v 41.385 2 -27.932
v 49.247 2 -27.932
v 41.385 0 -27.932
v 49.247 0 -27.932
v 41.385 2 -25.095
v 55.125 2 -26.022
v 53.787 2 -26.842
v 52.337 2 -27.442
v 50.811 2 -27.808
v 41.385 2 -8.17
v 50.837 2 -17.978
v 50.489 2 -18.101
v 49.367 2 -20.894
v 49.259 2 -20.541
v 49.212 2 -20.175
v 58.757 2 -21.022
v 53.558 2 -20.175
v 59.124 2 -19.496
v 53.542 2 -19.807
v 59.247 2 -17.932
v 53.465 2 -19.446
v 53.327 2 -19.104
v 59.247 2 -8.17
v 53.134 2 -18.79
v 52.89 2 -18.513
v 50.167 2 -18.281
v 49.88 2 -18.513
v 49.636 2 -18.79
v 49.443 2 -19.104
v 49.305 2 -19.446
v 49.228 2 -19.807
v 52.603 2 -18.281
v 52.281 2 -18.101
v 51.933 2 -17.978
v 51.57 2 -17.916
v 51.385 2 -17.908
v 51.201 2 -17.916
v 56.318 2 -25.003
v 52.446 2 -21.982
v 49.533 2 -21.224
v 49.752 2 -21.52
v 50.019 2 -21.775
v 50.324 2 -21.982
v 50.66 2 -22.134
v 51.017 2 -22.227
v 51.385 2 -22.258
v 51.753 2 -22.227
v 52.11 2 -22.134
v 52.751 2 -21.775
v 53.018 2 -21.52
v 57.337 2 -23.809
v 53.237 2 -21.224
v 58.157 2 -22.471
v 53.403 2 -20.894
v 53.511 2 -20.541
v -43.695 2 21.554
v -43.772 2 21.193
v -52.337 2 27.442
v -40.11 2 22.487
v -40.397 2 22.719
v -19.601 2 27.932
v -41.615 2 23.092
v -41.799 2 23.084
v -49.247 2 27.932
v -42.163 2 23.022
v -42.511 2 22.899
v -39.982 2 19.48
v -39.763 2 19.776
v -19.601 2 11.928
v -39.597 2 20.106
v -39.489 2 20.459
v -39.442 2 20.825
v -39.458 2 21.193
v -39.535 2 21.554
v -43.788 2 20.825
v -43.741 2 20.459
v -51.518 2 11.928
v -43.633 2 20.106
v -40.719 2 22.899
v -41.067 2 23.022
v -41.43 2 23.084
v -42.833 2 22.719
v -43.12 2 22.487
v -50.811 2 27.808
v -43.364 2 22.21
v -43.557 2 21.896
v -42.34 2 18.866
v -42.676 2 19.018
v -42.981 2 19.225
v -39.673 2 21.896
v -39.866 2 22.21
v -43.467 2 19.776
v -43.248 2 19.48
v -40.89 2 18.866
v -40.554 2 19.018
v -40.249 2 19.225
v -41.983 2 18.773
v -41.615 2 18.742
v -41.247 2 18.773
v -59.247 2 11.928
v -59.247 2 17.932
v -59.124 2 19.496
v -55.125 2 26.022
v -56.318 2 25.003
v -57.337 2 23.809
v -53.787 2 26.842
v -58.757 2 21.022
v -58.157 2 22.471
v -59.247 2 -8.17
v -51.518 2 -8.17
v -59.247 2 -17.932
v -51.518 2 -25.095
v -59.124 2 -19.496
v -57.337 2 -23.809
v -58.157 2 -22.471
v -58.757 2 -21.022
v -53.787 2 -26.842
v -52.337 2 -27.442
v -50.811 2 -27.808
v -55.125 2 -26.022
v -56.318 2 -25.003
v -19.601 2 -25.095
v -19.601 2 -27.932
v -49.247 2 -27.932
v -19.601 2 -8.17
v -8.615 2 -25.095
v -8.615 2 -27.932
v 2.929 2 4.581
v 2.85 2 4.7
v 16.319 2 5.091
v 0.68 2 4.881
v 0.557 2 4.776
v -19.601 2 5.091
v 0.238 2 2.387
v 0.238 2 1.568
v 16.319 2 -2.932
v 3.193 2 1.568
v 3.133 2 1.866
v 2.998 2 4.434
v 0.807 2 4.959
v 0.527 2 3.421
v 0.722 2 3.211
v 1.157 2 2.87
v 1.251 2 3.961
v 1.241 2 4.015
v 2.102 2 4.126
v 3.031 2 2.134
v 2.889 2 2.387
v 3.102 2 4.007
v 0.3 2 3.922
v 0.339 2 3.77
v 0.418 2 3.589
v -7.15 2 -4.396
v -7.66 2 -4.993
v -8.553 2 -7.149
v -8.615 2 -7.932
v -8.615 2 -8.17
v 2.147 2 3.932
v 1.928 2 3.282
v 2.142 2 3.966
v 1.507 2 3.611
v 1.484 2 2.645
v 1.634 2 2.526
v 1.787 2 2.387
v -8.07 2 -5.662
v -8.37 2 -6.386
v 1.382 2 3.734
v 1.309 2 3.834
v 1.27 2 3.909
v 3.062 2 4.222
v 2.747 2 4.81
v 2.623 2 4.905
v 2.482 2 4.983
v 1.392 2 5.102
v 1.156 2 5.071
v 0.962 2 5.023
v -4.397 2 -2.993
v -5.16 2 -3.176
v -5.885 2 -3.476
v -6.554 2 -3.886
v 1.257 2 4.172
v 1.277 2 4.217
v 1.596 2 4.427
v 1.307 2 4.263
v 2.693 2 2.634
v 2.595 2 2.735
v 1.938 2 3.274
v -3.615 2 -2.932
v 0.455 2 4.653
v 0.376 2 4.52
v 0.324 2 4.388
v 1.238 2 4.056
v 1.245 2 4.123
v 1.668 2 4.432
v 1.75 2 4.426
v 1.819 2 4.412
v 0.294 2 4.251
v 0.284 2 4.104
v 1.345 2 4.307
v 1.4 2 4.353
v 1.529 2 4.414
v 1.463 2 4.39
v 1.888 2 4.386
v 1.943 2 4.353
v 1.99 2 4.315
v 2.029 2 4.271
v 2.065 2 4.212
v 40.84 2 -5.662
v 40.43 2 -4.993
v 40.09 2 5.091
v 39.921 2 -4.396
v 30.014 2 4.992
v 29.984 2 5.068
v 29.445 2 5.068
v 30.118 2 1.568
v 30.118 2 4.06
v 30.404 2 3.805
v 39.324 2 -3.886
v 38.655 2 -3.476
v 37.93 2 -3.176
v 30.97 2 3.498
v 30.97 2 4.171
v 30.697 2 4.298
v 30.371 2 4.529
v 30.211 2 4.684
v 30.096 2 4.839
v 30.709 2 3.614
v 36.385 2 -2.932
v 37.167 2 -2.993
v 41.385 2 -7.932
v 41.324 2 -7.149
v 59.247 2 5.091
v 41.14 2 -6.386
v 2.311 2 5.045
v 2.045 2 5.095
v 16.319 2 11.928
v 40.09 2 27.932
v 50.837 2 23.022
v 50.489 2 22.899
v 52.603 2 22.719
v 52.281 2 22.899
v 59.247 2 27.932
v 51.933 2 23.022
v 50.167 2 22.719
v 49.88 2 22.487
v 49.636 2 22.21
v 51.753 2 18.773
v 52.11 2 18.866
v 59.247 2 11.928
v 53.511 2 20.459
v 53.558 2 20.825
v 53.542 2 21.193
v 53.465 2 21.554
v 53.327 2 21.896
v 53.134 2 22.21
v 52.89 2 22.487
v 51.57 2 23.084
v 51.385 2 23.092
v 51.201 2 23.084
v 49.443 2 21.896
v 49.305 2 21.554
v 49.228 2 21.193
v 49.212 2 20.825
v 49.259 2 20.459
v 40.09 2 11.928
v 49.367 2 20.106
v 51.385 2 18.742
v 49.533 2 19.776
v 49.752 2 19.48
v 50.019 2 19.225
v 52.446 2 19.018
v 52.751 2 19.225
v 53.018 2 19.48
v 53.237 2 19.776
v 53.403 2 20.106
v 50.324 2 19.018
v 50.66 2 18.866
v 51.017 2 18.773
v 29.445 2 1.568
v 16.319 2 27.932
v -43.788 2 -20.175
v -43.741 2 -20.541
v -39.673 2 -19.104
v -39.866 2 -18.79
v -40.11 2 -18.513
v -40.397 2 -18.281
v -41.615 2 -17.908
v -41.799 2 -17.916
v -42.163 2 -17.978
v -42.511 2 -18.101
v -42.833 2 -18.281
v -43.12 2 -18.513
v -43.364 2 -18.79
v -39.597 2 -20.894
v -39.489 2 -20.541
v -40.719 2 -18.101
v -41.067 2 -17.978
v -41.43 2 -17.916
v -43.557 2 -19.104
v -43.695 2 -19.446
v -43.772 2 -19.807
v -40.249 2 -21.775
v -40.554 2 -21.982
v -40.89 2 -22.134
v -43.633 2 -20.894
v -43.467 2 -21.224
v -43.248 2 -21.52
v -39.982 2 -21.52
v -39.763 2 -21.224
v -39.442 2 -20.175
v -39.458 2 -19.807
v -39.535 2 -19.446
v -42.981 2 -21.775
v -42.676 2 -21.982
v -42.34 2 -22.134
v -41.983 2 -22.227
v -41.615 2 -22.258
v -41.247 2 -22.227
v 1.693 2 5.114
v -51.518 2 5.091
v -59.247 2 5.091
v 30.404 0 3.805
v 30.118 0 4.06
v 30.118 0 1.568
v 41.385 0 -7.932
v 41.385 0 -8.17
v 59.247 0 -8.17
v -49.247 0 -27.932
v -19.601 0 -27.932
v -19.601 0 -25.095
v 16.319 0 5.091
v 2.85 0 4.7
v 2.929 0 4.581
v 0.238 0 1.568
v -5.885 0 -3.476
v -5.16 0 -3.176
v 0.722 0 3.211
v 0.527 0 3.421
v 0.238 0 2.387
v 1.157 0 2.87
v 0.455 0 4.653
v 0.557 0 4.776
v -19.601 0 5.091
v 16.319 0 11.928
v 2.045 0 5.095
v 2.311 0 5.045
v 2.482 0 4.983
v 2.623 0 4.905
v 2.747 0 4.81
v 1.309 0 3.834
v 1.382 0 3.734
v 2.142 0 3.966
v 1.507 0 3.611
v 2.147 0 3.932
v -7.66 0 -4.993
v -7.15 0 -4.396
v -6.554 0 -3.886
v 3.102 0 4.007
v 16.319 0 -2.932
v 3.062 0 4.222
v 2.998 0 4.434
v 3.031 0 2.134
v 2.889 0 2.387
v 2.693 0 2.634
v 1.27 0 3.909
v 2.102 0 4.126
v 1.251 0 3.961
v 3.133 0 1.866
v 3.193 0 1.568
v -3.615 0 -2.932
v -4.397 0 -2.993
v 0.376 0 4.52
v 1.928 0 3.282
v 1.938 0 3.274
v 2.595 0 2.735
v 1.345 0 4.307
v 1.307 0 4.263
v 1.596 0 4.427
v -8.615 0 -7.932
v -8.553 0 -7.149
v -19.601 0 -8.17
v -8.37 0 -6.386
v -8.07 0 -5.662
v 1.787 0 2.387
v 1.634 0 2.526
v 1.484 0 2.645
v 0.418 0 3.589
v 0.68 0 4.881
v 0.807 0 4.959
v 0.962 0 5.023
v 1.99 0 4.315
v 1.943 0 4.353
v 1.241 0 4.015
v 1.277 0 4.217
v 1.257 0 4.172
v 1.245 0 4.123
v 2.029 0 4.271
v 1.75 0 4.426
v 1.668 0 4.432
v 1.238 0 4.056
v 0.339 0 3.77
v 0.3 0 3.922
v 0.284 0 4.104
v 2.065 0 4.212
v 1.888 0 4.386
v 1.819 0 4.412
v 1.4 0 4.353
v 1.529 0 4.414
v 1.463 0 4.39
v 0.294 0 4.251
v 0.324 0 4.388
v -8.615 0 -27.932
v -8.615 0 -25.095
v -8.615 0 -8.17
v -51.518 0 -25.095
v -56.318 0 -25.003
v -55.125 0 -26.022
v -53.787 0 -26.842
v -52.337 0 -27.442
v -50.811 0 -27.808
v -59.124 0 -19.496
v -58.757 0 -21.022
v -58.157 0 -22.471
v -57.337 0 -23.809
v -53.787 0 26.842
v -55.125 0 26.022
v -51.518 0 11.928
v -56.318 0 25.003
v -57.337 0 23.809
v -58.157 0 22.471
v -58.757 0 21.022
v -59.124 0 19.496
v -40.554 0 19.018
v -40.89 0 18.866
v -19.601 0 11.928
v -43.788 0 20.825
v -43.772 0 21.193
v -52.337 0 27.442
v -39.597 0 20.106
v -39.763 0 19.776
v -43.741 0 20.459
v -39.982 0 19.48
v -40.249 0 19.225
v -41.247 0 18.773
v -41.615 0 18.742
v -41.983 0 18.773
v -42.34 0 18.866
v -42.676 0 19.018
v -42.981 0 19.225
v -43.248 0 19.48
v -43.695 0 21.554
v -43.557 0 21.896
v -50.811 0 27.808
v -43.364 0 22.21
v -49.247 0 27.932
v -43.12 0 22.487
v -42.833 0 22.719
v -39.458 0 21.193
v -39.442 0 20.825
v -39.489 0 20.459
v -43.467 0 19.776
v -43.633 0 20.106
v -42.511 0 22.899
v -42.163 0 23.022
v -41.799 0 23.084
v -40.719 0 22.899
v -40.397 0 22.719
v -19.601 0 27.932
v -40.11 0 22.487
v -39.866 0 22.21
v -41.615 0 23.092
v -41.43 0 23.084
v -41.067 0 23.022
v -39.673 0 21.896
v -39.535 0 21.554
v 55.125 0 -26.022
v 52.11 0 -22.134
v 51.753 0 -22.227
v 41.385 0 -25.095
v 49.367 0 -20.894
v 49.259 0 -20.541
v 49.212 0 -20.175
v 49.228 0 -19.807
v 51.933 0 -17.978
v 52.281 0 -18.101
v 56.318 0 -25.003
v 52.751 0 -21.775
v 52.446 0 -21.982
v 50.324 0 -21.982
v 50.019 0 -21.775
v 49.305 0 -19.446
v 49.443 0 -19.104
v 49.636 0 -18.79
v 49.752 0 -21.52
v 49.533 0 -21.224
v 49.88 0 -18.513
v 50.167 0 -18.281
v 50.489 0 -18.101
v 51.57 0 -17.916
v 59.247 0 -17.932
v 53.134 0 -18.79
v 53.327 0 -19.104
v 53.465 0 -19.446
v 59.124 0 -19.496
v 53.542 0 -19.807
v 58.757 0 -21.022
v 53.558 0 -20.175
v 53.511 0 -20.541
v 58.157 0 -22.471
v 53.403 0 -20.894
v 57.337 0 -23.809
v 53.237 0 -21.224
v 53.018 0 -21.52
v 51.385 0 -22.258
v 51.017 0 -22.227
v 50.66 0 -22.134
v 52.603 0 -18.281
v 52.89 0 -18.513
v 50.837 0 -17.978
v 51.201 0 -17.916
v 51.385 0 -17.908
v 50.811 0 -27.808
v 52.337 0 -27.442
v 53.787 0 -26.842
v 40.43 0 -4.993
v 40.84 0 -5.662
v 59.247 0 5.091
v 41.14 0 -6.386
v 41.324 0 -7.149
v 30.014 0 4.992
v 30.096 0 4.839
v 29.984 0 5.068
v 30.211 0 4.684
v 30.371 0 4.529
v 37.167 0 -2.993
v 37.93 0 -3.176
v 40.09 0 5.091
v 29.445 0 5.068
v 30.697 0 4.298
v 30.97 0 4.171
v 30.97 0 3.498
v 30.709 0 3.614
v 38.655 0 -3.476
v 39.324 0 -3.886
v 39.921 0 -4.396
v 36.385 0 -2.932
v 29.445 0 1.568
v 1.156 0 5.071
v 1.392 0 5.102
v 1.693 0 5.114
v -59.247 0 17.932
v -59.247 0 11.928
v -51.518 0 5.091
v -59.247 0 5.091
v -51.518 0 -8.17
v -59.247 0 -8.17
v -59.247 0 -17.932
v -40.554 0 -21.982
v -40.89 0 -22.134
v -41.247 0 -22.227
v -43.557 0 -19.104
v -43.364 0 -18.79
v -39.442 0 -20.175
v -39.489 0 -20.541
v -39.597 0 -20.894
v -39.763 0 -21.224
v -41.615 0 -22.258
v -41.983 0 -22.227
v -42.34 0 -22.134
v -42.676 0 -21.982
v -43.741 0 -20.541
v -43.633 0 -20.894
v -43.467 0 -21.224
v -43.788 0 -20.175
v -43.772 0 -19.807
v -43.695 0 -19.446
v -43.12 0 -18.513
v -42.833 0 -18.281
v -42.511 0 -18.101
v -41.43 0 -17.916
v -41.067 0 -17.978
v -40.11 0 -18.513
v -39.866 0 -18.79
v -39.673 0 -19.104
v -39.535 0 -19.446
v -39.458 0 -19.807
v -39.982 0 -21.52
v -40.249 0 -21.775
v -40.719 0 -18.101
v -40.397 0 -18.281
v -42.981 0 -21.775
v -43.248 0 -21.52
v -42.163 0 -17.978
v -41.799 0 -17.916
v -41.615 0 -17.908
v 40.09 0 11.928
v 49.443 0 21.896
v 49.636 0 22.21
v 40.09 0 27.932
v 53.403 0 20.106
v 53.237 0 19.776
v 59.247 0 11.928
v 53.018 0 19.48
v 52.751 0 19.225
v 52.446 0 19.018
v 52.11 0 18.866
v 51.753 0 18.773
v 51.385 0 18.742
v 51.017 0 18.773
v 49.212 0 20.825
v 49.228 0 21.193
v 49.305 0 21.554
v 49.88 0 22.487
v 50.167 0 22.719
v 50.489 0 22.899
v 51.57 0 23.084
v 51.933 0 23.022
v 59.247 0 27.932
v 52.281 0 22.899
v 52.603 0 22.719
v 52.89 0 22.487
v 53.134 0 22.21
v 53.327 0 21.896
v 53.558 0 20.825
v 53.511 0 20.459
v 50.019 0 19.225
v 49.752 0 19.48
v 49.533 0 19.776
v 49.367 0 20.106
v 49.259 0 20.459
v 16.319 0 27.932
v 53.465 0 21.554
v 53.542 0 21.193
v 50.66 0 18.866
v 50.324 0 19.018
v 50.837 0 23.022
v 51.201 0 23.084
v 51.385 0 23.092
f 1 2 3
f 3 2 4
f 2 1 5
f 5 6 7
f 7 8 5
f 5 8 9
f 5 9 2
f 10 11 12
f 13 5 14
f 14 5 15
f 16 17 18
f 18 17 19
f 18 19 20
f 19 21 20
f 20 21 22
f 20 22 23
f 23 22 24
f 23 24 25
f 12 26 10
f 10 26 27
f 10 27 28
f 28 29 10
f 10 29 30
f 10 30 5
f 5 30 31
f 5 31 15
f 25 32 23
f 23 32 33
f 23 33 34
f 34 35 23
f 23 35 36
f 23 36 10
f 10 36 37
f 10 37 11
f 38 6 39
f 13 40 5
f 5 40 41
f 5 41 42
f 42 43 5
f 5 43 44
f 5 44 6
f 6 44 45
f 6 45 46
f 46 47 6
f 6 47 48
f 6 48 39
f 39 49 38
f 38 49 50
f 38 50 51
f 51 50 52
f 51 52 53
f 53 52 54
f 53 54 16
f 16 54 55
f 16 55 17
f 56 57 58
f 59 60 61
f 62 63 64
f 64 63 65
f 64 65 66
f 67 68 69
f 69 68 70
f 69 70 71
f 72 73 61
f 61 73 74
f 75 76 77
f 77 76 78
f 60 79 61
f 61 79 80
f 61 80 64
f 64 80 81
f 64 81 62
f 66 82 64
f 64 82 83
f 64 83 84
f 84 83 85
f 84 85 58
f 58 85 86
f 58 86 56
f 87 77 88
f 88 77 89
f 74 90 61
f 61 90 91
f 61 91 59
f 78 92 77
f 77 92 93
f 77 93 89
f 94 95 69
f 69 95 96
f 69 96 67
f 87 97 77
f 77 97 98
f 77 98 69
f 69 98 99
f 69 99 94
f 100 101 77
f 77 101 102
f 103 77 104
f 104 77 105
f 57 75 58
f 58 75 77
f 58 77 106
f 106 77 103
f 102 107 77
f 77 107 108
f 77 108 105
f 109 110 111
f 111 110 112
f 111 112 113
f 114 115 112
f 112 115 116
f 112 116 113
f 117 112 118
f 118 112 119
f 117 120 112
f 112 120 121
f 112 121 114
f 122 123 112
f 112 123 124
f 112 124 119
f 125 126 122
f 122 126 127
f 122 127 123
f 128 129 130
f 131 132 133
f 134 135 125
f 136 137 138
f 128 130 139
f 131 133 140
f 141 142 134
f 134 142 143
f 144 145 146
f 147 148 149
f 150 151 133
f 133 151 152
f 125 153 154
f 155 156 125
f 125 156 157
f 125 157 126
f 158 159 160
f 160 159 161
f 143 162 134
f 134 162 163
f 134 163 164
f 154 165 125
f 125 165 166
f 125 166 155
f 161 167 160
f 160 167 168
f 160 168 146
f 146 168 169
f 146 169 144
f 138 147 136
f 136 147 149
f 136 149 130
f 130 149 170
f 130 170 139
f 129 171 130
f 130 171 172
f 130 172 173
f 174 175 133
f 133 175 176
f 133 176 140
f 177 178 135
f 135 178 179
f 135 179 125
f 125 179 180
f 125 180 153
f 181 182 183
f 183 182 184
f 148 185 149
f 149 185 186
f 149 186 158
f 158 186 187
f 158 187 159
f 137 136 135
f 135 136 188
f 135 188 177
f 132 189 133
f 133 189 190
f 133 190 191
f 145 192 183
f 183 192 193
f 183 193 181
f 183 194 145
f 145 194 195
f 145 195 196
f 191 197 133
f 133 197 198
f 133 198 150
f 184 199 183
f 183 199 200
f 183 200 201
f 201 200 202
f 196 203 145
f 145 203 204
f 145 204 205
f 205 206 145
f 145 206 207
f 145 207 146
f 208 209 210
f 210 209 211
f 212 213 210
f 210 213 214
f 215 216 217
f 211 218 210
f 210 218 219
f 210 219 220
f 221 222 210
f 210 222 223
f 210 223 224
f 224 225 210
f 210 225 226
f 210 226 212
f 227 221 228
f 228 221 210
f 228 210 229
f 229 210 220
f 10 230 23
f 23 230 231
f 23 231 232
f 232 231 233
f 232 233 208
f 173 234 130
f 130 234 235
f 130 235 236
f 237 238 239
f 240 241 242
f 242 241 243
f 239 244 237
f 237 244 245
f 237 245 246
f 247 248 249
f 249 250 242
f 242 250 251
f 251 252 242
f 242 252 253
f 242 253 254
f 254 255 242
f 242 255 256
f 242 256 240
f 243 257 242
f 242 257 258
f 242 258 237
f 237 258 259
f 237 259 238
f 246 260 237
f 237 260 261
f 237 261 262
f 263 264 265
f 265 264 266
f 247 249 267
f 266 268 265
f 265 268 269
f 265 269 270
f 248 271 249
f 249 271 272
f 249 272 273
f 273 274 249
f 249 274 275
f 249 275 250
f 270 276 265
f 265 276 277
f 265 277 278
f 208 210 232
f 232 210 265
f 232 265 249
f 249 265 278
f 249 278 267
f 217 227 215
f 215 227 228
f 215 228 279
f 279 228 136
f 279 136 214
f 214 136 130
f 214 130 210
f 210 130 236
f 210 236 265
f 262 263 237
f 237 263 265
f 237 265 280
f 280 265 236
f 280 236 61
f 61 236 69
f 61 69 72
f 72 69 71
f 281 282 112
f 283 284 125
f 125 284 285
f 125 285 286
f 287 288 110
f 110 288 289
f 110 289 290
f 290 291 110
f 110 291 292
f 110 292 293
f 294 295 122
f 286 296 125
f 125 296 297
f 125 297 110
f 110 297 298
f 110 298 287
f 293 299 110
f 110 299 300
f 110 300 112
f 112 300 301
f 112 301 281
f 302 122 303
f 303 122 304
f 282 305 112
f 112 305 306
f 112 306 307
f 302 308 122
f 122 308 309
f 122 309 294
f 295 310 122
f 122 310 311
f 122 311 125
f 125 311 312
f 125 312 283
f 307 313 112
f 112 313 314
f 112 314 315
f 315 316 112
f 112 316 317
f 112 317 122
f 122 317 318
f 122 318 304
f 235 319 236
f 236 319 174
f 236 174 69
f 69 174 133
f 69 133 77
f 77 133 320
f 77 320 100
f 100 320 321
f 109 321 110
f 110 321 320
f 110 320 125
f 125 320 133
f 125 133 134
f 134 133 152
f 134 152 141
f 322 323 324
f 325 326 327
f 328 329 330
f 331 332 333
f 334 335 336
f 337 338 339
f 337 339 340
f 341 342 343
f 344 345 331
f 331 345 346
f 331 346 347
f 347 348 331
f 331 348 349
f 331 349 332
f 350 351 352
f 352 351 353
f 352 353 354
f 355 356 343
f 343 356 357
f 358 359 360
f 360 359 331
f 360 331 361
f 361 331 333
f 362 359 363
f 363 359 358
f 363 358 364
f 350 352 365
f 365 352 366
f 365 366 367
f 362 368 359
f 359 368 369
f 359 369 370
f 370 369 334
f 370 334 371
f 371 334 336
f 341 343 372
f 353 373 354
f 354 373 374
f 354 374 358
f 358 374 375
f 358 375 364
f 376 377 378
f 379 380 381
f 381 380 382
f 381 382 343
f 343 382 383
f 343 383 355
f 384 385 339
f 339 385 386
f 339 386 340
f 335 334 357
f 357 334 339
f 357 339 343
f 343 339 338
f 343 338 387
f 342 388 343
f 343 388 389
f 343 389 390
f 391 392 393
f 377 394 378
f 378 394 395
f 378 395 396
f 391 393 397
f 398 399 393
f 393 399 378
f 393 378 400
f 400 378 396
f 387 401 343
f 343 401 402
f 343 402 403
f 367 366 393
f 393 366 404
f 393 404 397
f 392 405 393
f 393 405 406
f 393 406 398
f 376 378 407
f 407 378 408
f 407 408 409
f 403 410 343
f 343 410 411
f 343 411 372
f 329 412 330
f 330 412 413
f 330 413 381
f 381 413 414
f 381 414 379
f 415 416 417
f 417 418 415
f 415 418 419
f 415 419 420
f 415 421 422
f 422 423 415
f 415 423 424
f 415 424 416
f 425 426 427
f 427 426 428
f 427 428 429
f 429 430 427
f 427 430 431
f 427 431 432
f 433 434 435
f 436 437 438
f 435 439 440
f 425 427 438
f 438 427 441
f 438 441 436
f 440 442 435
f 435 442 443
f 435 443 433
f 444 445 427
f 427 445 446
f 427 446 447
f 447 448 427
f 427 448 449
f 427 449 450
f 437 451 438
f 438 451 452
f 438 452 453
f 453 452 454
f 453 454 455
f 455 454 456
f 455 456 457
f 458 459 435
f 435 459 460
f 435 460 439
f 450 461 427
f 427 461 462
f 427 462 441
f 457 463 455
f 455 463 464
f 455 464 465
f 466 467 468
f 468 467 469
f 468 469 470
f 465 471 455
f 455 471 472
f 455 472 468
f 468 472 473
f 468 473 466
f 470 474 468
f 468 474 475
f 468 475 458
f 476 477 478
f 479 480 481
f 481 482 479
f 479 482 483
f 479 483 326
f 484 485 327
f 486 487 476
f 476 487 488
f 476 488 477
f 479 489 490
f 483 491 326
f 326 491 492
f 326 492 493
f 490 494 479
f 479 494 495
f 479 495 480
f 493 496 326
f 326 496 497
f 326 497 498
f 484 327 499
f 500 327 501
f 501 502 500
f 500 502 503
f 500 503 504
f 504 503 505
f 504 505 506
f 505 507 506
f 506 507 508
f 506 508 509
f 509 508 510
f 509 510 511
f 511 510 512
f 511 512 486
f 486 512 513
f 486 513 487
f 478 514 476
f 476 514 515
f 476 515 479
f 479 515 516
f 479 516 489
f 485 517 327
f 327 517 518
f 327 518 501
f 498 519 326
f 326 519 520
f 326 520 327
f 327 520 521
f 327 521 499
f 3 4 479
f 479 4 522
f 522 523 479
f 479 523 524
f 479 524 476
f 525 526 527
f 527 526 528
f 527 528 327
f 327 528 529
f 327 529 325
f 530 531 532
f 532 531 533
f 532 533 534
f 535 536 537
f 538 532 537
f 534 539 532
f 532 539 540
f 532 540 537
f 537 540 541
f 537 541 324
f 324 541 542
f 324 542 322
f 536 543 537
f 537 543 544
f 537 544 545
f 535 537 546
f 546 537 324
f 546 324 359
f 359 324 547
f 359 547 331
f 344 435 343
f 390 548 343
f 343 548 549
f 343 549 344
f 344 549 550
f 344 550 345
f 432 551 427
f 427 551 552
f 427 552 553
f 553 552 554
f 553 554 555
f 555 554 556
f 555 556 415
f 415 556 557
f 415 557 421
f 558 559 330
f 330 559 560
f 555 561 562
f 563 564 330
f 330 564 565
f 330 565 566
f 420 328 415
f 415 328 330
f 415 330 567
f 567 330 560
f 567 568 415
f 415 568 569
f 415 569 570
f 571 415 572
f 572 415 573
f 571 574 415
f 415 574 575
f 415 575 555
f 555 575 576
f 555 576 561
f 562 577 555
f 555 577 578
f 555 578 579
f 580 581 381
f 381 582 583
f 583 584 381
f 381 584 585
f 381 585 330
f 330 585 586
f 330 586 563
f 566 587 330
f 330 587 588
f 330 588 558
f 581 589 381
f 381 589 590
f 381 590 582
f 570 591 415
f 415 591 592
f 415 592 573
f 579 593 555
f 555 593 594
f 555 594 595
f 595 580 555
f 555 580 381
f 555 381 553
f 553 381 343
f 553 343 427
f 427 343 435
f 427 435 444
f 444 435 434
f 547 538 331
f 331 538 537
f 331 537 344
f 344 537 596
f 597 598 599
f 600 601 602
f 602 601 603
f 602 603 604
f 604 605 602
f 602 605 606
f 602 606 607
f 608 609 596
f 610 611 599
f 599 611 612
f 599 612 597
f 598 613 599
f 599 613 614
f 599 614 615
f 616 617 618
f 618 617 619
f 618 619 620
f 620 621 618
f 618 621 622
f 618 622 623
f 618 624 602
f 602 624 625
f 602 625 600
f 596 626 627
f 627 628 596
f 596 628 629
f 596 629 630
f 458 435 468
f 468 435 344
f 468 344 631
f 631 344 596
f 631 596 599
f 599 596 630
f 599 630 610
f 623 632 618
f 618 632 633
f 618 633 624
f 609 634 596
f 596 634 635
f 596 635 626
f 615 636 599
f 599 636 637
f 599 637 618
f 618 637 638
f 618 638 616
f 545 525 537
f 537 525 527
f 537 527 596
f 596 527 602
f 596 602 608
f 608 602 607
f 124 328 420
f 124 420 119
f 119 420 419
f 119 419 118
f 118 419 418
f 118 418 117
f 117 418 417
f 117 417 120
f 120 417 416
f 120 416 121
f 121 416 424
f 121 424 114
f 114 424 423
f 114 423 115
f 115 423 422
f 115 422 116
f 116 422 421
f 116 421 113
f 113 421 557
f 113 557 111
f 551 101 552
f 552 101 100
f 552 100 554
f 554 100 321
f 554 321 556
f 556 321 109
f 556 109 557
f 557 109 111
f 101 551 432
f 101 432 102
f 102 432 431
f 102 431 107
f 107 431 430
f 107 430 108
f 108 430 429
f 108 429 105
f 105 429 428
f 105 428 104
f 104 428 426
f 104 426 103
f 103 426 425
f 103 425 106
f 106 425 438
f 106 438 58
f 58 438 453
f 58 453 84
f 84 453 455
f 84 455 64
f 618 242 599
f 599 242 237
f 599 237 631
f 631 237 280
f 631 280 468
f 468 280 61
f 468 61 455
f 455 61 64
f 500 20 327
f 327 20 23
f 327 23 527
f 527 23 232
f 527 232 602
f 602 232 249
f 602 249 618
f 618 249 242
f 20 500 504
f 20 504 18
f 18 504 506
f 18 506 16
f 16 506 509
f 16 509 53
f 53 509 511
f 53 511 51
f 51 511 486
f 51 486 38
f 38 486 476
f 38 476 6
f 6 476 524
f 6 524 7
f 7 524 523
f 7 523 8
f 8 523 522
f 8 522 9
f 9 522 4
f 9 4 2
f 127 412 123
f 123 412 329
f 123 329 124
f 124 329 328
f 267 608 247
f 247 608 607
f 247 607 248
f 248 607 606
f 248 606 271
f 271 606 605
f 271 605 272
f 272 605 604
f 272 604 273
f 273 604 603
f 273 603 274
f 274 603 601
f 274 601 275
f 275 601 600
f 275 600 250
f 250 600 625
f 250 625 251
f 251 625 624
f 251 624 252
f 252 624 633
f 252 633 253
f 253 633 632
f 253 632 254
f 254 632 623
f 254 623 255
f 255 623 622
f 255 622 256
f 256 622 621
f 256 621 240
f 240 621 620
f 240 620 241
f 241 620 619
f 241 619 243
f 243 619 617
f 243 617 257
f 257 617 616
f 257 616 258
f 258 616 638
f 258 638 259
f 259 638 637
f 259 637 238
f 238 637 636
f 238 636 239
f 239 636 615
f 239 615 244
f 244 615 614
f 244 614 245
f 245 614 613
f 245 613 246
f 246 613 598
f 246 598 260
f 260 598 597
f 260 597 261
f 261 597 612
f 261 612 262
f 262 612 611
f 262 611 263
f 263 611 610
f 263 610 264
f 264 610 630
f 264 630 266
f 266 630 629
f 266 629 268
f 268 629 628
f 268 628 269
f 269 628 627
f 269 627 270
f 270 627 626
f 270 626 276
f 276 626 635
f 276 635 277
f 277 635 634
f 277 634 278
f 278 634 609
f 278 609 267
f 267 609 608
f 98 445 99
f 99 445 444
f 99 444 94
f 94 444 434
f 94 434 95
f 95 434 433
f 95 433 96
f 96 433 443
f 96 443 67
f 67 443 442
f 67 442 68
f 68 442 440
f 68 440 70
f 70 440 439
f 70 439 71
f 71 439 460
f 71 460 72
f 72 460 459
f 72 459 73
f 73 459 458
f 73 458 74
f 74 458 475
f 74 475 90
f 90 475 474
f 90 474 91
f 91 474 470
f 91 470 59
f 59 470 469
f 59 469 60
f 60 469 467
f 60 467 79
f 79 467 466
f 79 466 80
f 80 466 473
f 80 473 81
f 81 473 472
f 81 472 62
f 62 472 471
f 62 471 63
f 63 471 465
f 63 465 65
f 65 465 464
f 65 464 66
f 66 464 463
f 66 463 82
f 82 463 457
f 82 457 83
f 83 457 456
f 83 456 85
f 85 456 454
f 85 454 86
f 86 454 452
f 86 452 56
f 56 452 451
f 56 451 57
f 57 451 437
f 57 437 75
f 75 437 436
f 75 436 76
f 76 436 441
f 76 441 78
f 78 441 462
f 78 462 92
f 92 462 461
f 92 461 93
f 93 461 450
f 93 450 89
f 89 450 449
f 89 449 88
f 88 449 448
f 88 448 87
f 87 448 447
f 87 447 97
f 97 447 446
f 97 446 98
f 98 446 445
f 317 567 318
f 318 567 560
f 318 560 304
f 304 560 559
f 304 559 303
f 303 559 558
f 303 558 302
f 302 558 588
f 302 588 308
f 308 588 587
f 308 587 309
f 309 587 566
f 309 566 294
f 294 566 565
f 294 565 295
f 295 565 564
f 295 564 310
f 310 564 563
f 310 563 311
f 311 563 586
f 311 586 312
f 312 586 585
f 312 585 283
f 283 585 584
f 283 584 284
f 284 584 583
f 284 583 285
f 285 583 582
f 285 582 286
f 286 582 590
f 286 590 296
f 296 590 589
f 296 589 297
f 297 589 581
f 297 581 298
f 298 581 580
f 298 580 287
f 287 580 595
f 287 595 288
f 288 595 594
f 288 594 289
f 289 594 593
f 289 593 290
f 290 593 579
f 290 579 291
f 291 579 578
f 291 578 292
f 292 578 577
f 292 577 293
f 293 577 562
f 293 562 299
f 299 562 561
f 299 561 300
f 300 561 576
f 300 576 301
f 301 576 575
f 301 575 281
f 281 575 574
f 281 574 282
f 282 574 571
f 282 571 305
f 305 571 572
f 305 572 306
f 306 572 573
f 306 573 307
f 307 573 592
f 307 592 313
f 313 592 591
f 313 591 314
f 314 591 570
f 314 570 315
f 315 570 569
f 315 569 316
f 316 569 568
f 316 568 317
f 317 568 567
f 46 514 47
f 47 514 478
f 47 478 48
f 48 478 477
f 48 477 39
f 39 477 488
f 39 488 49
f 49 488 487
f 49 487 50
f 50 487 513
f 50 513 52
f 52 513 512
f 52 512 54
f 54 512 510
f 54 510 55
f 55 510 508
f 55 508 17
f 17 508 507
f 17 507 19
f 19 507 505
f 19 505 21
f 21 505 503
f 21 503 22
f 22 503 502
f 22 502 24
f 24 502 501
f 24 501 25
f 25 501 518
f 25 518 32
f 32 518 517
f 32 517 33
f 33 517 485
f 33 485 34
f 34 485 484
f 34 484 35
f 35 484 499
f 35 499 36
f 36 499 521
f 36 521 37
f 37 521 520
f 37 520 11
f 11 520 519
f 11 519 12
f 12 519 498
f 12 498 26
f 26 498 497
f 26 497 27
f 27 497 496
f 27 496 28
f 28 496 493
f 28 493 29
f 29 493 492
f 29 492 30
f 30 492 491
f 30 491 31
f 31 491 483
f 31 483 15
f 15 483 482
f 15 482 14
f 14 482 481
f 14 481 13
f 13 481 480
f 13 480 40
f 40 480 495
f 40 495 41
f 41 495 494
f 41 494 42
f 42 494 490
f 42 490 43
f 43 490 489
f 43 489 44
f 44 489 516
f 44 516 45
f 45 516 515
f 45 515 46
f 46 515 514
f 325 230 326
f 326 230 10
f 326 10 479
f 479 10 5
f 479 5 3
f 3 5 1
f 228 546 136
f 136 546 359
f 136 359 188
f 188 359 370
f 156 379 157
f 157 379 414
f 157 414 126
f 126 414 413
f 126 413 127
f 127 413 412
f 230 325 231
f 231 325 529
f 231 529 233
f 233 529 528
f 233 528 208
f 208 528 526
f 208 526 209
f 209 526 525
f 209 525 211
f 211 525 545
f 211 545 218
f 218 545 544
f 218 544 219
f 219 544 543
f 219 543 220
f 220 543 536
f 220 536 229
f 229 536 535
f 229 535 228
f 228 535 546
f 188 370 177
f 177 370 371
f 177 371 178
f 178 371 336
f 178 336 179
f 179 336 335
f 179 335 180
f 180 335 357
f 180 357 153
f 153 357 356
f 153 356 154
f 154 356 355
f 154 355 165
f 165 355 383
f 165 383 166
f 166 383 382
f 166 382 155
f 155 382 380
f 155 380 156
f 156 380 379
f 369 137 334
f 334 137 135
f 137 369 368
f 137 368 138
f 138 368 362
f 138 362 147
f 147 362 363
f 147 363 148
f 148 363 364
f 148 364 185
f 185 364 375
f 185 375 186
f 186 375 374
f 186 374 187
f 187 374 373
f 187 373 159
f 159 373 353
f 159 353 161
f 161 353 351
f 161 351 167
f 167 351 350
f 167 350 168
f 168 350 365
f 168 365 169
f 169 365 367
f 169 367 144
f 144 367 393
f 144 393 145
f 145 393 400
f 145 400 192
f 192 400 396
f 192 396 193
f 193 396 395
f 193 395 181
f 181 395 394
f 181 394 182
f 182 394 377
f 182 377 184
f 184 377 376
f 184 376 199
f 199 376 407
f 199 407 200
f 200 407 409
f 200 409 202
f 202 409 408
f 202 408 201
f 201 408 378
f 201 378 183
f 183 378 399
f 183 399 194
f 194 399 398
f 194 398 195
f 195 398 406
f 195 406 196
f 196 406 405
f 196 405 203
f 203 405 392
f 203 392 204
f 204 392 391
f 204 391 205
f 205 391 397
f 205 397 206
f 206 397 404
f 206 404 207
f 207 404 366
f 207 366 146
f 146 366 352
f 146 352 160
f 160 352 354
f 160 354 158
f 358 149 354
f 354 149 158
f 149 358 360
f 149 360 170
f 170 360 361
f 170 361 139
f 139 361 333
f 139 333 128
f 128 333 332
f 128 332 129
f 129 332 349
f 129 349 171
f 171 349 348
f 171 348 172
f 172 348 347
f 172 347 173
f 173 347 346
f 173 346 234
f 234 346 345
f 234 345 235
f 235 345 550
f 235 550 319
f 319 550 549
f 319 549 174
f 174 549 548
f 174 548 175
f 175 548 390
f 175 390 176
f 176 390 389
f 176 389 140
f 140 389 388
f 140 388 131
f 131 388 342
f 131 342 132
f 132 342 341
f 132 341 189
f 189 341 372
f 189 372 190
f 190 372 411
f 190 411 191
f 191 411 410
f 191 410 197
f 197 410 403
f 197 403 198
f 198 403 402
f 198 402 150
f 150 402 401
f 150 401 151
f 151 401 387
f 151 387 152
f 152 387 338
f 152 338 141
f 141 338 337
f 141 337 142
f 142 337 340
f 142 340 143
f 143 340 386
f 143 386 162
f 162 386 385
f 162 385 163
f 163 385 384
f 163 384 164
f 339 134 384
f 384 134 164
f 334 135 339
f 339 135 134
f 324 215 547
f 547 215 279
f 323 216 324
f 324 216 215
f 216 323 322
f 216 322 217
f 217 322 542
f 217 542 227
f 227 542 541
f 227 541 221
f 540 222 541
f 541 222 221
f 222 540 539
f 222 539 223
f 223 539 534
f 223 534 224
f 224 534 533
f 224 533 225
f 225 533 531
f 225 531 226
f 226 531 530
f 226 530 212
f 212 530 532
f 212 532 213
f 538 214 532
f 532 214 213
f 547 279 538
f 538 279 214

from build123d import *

# Parameters (mm, degrees)
CROQUIS1_R              = 2.175
SALIENTE_EXTRUIR1_DEPTH = 2
CROQUIS2_W              = 50
CROQUIS2_H              = 25
CORTAR_EXTRUIR1_DEPTH   = 2
REDONDEO1_R             = 5
CORTAR_EXTRUIR2_DEPTH   = 2


with BuildPart() as part:
    # Croquis1 → Saliente-Extruir1 (new body)
    with BuildSketch(Plane(origin=(0, 0, 0), x_dir=(1, 0, 0), z_dir=(0, 1, 0))):
        with BuildLine():
            Line((-59.24665691, 17.931526281), (-59.24665691, -17.931526281))
            ThreePointArc((-59.24665691, -17.931526281), (-56.317724722, -25.002594093), (-49.24665691, -27.931526281))
            Line((-49.24665691, -27.931526281), (-31.500611182, -27.931526281))
            Line((-31.500611182, -27.931526281), (37.914147183, -27.931526281))
            Line((37.914147183, -27.931526281), (59.24665691, -27.931526281))
            Line((59.24665691, -27.931526281), (59.24665691, 17.931526281))
            ThreePointArc((59.24665691, 17.931526281), (56.317724722, 25.002594093), (49.24665691, 27.931526281))
            Line((49.24665691, 27.931526281), (-49.24665691, 27.931526281))
            ThreePointArc((-49.24665691, 27.931526281), (-56.317724722, 25.002594093), (-59.24665691, 17.931526281))
        make_face()
        with Locations((51.3850757, -20.916819625)):
            Circle(CROQUIS1_R, mode=Mode.SUBTRACT)
        with Locations((-41.6149243, -20.916819625)):
            Circle(CROQUIS1_R, mode=Mode.SUBTRACT)
        with Locations((-41.6149243, 20.083180375)):
            Circle(CROQUIS1_R, mode=Mode.SUBTRACT)
        with Locations((51.3850757, 20.083180375)):
            Circle(CROQUIS1_R, mode=Mode.SUBTRACT)
    extrude(amount=SALIENTE_EXTRUIR1_DEPTH)

    # Croquis2 → Cortar-Extruir1 (cut)
    with BuildSketch(Plane(origin=(0, 2, 0), x_dir=(1, 0, 0), z_dir=(0, 1, 0))):
        with Locations((16.3850757, 15.431526281)):
            Rectangle(CROQUIS2_W, CROQUIS2_H)
    extrude(amount=-CORTAR_EXTRUIR1_DEPTH, mode=Mode.SUBTRACT)

    # Redondeo1
    redondeo1_edges = [part.edges().sort_by_distance(p)[0] for p in [
        (41.3850757, 1, -2.931526281),
        (-8.6149243, 1, -2.931526281),
    ]]
    fillet(redondeo1_edges, radius=REDONDEO1_R)

    # Croquis4 → Cortar-Extruir2 (cut)
    with BuildSketch(Plane.XZ):
        with BuildLine():
            Line((29.444521437, 1.568473719), (30.11759836, 1.568473719))
            Line((30.11759836, 1.568473719), (30.11759836, 4.060260578))
            add(Edge.make_bspline(
                [(30.11759836, 4.060260578), (30.148105822, 4.029289813), (30.208706879, 3.967768435), (30.305496315, 3.881954316), (30.405978505, 3.802124559), (30.511147814, 3.729037402), (30.61962941, 3.661651481), (30.732531913, 3.600498497), (30.849036967, 3.544732313), (30.929745062, 3.513567679), (30.970162463, 3.497960898)],
                knots=[0, 0, 0, 0, 0.000130388, 0.000259007, 0.000387777, 0.000515175, 0.000643004, 0.000770695, 0.000900222, 0.001030157, 0.001030157, 0.001030157, 0.001030157], degree=3))
            Line((30.970162463, 3.497960898), (30.970162463, 4.171037821))
            add(Edge.make_bspline(
                [(30.970162463, 4.171037821), (30.925337531, 4.187845247), (30.831522436, 4.223021882), (30.693082905, 4.297844367), (30.548583301, 4.390482153), (30.427195385, 4.481338367), (30.33081837, 4.562116803), (30.263458163, 4.62704999), (30.201045059, 4.693544942), (30.145925041, 4.763747872), (30.096651183, 4.836239432), (30.052992396, 4.910901194), (30.014562629, 4.987969009), (29.994444914, 5.041637327), (29.984385219, 5.068473719)],
                knots=[0, 0, 0, 0, 0.000143475, 0.000300282, 0.000470852, 0.000658192, 0.000754698, 0.000847923, 0.000938715, 0.001028066, 0.00111538, 0.001201478, 0.001287394, 0.001373323, 0.001373323, 0.001373323, 0.001373323], degree=3))
            Line((29.984385219, 5.068473719), (29.444521437, 5.068473719))
            Line((29.444521437, 5.068473719), (29.444521437, 1.568473719))
        make_face()
        with BuildLine():
            Line((0.238227731, 1.568473719), (3.192773185, 1.568473719))
            add(Edge.make_bspline(
                [(3.192773185, 1.568473719), (3.188115357, 1.604788367), (3.178835808, 1.677136155), (3.155068568, 1.784065443), (3.127140852, 1.889748411), (3.092461936, 1.993848095), (3.049680145, 2.095512273), (3.002856429, 2.19669015), (2.94729708, 2.295118176), (2.886860339, 2.394367373), (2.814200344, 2.493443888), (2.729582069, 2.596122101), (2.629633226, 2.701343615), (2.516505876, 2.810695804), (2.389788427, 2.923761308), (2.248649332, 3.040002632), (2.094036264, 3.160927698), (1.984462278, 3.240458026), (1.927858413, 3.281541901)],
                knots=[0, 0, 0, 0, 0.000109782, 0.000218714, 0.000328285, 0.000437662, 0.000547529, 0.000659044, 0.000771901, 0.000886408, 0.001007447, 0.001140123, 0.001285331, 0.001442542, 0.001612054, 0.001794653, 0.001990995, 0.002200805, 0.002200805, 0.002200805, 0.002200805], degree=3))
            add(Edge.make_bspline(
                [(1.927858413, 3.281541901), (1.893424314, 3.306253875), (1.827407407, 3.353631569), (1.734179987, 3.424062611), (1.650525877, 3.490388277), (1.575249679, 3.550647526), (1.510130493, 3.607333231), (1.454212438, 3.658929136), (1.406754234, 3.705389161), (1.358740775, 3.761072032), (1.311519349, 3.826339302), (1.270109393, 3.904031485), (1.242851252, 3.980026103), (1.239730022, 4.031104768), (1.238227731, 4.055689628)],
                knots=[0, 0, 0, 0, 0.000127149, 0.000243769, 0.000350475, 0.000447421, 0.000533008, 0.000609403, 0.000675694, 0.000732085, 0.000829839, 0.000916571, 0.000995853, 0.001069422, 0.001069422, 0.001069422, 0.001069422], degree=3))
            add(Edge.make_bspline(
                [(1.238227731, 4.055689628), (1.239685746, 4.080972097), (1.242541207, 4.130486734), (1.266653205, 4.201654218), (1.305747651, 4.266442593), (1.359509302, 4.323756407), (1.424157163, 4.371621265), (1.498188647, 4.407383572), (1.580621178, 4.428177391), (1.638203662, 4.430771544), (1.667915231, 4.432110082)],
                knots=[0, 0, 0, 0, 7.5688e-05, 0.000148232, 0.000222776, 0.000301178, 0.00038243, 0.000462799, 0.000546343, 0.000635405, 0.000635405, 0.000635405, 0.000635405], degree=3))
            add(Edge.make_bspline(
                [(1.667915231, 4.432110082), (1.698813755, 4.430809048), (1.758278058, 4.428305203), (1.843219818, 4.407324867), (1.918981726, 4.372152378), (1.974530483, 4.331309897), (2.013689853, 4.291349515), (2.040808134, 4.255651482), (2.064355526, 4.214184875), (2.087086891, 4.168265993), (2.105602713, 4.116647385), (2.122002547, 4.059916325), (2.136216017, 3.998020881), (2.14352285, 3.954643819), (2.14731864, 3.932110082)],
                knots=[0, 0, 0, 0, 9.2602e-05, 0.000178213, 0.000260508, 0.00034176, 0.000383446, 0.000428049, 0.000475798, 0.000526305, 0.000581584, 0.000640021, 0.000703423, 0.000771966, 0.000771966, 0.000771966, 0.000771966], degree=3))
            Line((2.14731864, 3.932110082), (3.101864094, 4.006683946))
            add(Edge.make_bspline(
                [(3.101864094, 4.006683946), (3.096994116, 4.039650766), (3.087461692, 4.104179537), (3.067871533, 4.197366087), (3.046962689, 4.285499285), (3.022046312, 4.367704138), (2.994400178, 4.444545826), (2.964137877, 4.515998173), (2.929779719, 4.581157532), (2.881644848, 4.661426522), (2.810389047, 4.751759712), (2.709397011, 4.847015779), (2.592564179, 4.927953002), (2.483825815, 4.984190233), (2.388096824, 5.021729738), (2.308290198, 5.046369437), (2.221990226, 5.067601851), (2.128965037, 5.084403665), (2.029469325, 5.098056751), (1.923011653, 5.106807753), (1.810025667, 5.11265402), (1.732553843, 5.113495947), (1.692773185, 5.113928264)],
                knots=[0, 0, 0, 0, 9.995e-05, 0.000195642, 0.00028556, 0.000371615, 0.000453168, 0.000530478, 0.000604178, 0.000673972, 0.000811075, 0.000947734, 0.001089005, 0.001236077, 0.001313892, 0.001397231, 0.00148646, 0.001580349, 0.001680693, 0.001787626, 0.001900695, 0.002020032, 0.002020032, 0.002020032, 0.002020032], degree=3))
            add(Edge.make_bspline(
                [(1.692773185, 5.113928264), (1.651340679, 5.113397506), (1.570577331, 5.112362914), (1.453036045, 5.107878174), (1.34242277, 5.098420374), (1.23907833, 5.085938383), (1.142821984, 5.069686254), (1.053687032, 5.049772162), (0.971451968, 5.026806196), (0.895920672, 4.999295684), (0.825740946, 4.968820838), (0.760065932, 4.933742155), (0.698346318, 4.894802211), (0.640597303, 4.851866527), (0.586189039, 4.805657255), (0.535953343, 4.755006285), (0.488639596, 4.701098695), (0.446364968, 4.642792682), (0.408254872, 4.582011512), (0.374293308, 4.519431441), (0.347155821, 4.454387488), (0.322843456, 4.388116191), (0.305795233, 4.319440044), (0.292454011, 4.249312564), (0.285675472, 4.177270825), (0.284352217, 4.128617444), (0.283682276, 4.103985082)],
                knots=[0, 0, 0, 0, 0.000124308, 0.000242311, 0.000352782, 0.000457261, 0.000554523, 0.000645501, 0.000731157, 0.000810464, 0.000886471, 0.000960502, 0.001033604, 0.001105196, 0.001176222, 0.001247536, 0.001319026, 0.00139119, 0.001463312, 0.001534167, 0.001604484, 0.00167457, 0.001745713, 0.00181648, 0.001888563, 0.001962482, 0.001962482, 0.001962482, 0.001962482], degree=3))
            add(Edge.make_bspline(
                [(0.283682276, 4.103985082), (0.284146132, 4.077674435), (0.285072563, 4.025125751), (0.295101547, 3.947135962), (0.308857923, 3.869836073), (0.32967374, 3.793603518), (0.356890877, 3.718261121), (0.389668246, 3.643538536), (0.42798763, 3.569681371), (0.472692567, 3.496283619), (0.524647072, 3.422352303), (0.587623536, 3.348689881), (0.658047527, 3.271963933), (0.739230369, 3.194302446), (0.829692238, 3.115067123), (0.930761028, 3.035143861), (1.039488039, 2.951462642), (1.117230695, 2.897900463), (1.157261822, 2.87032031)],
                knots=[0, 0, 0, 0, 7.8886e-05, 0.000157555, 0.000235564, 0.0003143, 0.000394275, 0.000475692, 0.000558919, 0.000643695, 0.000733358, 0.000829659, 0.000934195, 0.001045703, 0.0011665, 0.001294833, 0.001432194, 0.001578003, 0.001578003, 0.001578003, 0.001578003], degree=3))
            add(Edge.make_bspline(
                [(1.157261822, 2.87032031), (1.180969807, 2.854508529), (1.226365633, 2.824232281), (1.29078794, 2.780126058), (1.349326873, 2.74020997), (1.402090118, 2.704045916), (1.448471107, 2.67109448), (1.488355102, 2.641479001), (1.522950215, 2.616823253), (1.561123658, 2.587028109), (1.606631457, 2.549422878), (1.662933813, 2.5008226), (1.723946438, 2.446547502), (1.765107013, 2.407152874), (1.786523185, 2.386655537)],
                knots=[0, 0, 0, 0, 8.549e-05, 0.000163696, 0.00023422, 0.000298049, 0.000355595, 0.000404888, 0.00044708, 0.000483022, 0.000550133, 0.000624164, 0.000706149, 0.000795075, 0.000795075, 0.000795075, 0.000795075], degree=3))
            Line((1.786523185, 2.386655537), (0.238227731, 2.386655537))
            Line((0.238227731, 2.386655537), (0.238227731, 1.568473719))
        make_face()
    extrude(amount=-CORTAR_EXTRUIR2_DEPTH, mode=Mode.SUBTRACT)


solid = part.part
